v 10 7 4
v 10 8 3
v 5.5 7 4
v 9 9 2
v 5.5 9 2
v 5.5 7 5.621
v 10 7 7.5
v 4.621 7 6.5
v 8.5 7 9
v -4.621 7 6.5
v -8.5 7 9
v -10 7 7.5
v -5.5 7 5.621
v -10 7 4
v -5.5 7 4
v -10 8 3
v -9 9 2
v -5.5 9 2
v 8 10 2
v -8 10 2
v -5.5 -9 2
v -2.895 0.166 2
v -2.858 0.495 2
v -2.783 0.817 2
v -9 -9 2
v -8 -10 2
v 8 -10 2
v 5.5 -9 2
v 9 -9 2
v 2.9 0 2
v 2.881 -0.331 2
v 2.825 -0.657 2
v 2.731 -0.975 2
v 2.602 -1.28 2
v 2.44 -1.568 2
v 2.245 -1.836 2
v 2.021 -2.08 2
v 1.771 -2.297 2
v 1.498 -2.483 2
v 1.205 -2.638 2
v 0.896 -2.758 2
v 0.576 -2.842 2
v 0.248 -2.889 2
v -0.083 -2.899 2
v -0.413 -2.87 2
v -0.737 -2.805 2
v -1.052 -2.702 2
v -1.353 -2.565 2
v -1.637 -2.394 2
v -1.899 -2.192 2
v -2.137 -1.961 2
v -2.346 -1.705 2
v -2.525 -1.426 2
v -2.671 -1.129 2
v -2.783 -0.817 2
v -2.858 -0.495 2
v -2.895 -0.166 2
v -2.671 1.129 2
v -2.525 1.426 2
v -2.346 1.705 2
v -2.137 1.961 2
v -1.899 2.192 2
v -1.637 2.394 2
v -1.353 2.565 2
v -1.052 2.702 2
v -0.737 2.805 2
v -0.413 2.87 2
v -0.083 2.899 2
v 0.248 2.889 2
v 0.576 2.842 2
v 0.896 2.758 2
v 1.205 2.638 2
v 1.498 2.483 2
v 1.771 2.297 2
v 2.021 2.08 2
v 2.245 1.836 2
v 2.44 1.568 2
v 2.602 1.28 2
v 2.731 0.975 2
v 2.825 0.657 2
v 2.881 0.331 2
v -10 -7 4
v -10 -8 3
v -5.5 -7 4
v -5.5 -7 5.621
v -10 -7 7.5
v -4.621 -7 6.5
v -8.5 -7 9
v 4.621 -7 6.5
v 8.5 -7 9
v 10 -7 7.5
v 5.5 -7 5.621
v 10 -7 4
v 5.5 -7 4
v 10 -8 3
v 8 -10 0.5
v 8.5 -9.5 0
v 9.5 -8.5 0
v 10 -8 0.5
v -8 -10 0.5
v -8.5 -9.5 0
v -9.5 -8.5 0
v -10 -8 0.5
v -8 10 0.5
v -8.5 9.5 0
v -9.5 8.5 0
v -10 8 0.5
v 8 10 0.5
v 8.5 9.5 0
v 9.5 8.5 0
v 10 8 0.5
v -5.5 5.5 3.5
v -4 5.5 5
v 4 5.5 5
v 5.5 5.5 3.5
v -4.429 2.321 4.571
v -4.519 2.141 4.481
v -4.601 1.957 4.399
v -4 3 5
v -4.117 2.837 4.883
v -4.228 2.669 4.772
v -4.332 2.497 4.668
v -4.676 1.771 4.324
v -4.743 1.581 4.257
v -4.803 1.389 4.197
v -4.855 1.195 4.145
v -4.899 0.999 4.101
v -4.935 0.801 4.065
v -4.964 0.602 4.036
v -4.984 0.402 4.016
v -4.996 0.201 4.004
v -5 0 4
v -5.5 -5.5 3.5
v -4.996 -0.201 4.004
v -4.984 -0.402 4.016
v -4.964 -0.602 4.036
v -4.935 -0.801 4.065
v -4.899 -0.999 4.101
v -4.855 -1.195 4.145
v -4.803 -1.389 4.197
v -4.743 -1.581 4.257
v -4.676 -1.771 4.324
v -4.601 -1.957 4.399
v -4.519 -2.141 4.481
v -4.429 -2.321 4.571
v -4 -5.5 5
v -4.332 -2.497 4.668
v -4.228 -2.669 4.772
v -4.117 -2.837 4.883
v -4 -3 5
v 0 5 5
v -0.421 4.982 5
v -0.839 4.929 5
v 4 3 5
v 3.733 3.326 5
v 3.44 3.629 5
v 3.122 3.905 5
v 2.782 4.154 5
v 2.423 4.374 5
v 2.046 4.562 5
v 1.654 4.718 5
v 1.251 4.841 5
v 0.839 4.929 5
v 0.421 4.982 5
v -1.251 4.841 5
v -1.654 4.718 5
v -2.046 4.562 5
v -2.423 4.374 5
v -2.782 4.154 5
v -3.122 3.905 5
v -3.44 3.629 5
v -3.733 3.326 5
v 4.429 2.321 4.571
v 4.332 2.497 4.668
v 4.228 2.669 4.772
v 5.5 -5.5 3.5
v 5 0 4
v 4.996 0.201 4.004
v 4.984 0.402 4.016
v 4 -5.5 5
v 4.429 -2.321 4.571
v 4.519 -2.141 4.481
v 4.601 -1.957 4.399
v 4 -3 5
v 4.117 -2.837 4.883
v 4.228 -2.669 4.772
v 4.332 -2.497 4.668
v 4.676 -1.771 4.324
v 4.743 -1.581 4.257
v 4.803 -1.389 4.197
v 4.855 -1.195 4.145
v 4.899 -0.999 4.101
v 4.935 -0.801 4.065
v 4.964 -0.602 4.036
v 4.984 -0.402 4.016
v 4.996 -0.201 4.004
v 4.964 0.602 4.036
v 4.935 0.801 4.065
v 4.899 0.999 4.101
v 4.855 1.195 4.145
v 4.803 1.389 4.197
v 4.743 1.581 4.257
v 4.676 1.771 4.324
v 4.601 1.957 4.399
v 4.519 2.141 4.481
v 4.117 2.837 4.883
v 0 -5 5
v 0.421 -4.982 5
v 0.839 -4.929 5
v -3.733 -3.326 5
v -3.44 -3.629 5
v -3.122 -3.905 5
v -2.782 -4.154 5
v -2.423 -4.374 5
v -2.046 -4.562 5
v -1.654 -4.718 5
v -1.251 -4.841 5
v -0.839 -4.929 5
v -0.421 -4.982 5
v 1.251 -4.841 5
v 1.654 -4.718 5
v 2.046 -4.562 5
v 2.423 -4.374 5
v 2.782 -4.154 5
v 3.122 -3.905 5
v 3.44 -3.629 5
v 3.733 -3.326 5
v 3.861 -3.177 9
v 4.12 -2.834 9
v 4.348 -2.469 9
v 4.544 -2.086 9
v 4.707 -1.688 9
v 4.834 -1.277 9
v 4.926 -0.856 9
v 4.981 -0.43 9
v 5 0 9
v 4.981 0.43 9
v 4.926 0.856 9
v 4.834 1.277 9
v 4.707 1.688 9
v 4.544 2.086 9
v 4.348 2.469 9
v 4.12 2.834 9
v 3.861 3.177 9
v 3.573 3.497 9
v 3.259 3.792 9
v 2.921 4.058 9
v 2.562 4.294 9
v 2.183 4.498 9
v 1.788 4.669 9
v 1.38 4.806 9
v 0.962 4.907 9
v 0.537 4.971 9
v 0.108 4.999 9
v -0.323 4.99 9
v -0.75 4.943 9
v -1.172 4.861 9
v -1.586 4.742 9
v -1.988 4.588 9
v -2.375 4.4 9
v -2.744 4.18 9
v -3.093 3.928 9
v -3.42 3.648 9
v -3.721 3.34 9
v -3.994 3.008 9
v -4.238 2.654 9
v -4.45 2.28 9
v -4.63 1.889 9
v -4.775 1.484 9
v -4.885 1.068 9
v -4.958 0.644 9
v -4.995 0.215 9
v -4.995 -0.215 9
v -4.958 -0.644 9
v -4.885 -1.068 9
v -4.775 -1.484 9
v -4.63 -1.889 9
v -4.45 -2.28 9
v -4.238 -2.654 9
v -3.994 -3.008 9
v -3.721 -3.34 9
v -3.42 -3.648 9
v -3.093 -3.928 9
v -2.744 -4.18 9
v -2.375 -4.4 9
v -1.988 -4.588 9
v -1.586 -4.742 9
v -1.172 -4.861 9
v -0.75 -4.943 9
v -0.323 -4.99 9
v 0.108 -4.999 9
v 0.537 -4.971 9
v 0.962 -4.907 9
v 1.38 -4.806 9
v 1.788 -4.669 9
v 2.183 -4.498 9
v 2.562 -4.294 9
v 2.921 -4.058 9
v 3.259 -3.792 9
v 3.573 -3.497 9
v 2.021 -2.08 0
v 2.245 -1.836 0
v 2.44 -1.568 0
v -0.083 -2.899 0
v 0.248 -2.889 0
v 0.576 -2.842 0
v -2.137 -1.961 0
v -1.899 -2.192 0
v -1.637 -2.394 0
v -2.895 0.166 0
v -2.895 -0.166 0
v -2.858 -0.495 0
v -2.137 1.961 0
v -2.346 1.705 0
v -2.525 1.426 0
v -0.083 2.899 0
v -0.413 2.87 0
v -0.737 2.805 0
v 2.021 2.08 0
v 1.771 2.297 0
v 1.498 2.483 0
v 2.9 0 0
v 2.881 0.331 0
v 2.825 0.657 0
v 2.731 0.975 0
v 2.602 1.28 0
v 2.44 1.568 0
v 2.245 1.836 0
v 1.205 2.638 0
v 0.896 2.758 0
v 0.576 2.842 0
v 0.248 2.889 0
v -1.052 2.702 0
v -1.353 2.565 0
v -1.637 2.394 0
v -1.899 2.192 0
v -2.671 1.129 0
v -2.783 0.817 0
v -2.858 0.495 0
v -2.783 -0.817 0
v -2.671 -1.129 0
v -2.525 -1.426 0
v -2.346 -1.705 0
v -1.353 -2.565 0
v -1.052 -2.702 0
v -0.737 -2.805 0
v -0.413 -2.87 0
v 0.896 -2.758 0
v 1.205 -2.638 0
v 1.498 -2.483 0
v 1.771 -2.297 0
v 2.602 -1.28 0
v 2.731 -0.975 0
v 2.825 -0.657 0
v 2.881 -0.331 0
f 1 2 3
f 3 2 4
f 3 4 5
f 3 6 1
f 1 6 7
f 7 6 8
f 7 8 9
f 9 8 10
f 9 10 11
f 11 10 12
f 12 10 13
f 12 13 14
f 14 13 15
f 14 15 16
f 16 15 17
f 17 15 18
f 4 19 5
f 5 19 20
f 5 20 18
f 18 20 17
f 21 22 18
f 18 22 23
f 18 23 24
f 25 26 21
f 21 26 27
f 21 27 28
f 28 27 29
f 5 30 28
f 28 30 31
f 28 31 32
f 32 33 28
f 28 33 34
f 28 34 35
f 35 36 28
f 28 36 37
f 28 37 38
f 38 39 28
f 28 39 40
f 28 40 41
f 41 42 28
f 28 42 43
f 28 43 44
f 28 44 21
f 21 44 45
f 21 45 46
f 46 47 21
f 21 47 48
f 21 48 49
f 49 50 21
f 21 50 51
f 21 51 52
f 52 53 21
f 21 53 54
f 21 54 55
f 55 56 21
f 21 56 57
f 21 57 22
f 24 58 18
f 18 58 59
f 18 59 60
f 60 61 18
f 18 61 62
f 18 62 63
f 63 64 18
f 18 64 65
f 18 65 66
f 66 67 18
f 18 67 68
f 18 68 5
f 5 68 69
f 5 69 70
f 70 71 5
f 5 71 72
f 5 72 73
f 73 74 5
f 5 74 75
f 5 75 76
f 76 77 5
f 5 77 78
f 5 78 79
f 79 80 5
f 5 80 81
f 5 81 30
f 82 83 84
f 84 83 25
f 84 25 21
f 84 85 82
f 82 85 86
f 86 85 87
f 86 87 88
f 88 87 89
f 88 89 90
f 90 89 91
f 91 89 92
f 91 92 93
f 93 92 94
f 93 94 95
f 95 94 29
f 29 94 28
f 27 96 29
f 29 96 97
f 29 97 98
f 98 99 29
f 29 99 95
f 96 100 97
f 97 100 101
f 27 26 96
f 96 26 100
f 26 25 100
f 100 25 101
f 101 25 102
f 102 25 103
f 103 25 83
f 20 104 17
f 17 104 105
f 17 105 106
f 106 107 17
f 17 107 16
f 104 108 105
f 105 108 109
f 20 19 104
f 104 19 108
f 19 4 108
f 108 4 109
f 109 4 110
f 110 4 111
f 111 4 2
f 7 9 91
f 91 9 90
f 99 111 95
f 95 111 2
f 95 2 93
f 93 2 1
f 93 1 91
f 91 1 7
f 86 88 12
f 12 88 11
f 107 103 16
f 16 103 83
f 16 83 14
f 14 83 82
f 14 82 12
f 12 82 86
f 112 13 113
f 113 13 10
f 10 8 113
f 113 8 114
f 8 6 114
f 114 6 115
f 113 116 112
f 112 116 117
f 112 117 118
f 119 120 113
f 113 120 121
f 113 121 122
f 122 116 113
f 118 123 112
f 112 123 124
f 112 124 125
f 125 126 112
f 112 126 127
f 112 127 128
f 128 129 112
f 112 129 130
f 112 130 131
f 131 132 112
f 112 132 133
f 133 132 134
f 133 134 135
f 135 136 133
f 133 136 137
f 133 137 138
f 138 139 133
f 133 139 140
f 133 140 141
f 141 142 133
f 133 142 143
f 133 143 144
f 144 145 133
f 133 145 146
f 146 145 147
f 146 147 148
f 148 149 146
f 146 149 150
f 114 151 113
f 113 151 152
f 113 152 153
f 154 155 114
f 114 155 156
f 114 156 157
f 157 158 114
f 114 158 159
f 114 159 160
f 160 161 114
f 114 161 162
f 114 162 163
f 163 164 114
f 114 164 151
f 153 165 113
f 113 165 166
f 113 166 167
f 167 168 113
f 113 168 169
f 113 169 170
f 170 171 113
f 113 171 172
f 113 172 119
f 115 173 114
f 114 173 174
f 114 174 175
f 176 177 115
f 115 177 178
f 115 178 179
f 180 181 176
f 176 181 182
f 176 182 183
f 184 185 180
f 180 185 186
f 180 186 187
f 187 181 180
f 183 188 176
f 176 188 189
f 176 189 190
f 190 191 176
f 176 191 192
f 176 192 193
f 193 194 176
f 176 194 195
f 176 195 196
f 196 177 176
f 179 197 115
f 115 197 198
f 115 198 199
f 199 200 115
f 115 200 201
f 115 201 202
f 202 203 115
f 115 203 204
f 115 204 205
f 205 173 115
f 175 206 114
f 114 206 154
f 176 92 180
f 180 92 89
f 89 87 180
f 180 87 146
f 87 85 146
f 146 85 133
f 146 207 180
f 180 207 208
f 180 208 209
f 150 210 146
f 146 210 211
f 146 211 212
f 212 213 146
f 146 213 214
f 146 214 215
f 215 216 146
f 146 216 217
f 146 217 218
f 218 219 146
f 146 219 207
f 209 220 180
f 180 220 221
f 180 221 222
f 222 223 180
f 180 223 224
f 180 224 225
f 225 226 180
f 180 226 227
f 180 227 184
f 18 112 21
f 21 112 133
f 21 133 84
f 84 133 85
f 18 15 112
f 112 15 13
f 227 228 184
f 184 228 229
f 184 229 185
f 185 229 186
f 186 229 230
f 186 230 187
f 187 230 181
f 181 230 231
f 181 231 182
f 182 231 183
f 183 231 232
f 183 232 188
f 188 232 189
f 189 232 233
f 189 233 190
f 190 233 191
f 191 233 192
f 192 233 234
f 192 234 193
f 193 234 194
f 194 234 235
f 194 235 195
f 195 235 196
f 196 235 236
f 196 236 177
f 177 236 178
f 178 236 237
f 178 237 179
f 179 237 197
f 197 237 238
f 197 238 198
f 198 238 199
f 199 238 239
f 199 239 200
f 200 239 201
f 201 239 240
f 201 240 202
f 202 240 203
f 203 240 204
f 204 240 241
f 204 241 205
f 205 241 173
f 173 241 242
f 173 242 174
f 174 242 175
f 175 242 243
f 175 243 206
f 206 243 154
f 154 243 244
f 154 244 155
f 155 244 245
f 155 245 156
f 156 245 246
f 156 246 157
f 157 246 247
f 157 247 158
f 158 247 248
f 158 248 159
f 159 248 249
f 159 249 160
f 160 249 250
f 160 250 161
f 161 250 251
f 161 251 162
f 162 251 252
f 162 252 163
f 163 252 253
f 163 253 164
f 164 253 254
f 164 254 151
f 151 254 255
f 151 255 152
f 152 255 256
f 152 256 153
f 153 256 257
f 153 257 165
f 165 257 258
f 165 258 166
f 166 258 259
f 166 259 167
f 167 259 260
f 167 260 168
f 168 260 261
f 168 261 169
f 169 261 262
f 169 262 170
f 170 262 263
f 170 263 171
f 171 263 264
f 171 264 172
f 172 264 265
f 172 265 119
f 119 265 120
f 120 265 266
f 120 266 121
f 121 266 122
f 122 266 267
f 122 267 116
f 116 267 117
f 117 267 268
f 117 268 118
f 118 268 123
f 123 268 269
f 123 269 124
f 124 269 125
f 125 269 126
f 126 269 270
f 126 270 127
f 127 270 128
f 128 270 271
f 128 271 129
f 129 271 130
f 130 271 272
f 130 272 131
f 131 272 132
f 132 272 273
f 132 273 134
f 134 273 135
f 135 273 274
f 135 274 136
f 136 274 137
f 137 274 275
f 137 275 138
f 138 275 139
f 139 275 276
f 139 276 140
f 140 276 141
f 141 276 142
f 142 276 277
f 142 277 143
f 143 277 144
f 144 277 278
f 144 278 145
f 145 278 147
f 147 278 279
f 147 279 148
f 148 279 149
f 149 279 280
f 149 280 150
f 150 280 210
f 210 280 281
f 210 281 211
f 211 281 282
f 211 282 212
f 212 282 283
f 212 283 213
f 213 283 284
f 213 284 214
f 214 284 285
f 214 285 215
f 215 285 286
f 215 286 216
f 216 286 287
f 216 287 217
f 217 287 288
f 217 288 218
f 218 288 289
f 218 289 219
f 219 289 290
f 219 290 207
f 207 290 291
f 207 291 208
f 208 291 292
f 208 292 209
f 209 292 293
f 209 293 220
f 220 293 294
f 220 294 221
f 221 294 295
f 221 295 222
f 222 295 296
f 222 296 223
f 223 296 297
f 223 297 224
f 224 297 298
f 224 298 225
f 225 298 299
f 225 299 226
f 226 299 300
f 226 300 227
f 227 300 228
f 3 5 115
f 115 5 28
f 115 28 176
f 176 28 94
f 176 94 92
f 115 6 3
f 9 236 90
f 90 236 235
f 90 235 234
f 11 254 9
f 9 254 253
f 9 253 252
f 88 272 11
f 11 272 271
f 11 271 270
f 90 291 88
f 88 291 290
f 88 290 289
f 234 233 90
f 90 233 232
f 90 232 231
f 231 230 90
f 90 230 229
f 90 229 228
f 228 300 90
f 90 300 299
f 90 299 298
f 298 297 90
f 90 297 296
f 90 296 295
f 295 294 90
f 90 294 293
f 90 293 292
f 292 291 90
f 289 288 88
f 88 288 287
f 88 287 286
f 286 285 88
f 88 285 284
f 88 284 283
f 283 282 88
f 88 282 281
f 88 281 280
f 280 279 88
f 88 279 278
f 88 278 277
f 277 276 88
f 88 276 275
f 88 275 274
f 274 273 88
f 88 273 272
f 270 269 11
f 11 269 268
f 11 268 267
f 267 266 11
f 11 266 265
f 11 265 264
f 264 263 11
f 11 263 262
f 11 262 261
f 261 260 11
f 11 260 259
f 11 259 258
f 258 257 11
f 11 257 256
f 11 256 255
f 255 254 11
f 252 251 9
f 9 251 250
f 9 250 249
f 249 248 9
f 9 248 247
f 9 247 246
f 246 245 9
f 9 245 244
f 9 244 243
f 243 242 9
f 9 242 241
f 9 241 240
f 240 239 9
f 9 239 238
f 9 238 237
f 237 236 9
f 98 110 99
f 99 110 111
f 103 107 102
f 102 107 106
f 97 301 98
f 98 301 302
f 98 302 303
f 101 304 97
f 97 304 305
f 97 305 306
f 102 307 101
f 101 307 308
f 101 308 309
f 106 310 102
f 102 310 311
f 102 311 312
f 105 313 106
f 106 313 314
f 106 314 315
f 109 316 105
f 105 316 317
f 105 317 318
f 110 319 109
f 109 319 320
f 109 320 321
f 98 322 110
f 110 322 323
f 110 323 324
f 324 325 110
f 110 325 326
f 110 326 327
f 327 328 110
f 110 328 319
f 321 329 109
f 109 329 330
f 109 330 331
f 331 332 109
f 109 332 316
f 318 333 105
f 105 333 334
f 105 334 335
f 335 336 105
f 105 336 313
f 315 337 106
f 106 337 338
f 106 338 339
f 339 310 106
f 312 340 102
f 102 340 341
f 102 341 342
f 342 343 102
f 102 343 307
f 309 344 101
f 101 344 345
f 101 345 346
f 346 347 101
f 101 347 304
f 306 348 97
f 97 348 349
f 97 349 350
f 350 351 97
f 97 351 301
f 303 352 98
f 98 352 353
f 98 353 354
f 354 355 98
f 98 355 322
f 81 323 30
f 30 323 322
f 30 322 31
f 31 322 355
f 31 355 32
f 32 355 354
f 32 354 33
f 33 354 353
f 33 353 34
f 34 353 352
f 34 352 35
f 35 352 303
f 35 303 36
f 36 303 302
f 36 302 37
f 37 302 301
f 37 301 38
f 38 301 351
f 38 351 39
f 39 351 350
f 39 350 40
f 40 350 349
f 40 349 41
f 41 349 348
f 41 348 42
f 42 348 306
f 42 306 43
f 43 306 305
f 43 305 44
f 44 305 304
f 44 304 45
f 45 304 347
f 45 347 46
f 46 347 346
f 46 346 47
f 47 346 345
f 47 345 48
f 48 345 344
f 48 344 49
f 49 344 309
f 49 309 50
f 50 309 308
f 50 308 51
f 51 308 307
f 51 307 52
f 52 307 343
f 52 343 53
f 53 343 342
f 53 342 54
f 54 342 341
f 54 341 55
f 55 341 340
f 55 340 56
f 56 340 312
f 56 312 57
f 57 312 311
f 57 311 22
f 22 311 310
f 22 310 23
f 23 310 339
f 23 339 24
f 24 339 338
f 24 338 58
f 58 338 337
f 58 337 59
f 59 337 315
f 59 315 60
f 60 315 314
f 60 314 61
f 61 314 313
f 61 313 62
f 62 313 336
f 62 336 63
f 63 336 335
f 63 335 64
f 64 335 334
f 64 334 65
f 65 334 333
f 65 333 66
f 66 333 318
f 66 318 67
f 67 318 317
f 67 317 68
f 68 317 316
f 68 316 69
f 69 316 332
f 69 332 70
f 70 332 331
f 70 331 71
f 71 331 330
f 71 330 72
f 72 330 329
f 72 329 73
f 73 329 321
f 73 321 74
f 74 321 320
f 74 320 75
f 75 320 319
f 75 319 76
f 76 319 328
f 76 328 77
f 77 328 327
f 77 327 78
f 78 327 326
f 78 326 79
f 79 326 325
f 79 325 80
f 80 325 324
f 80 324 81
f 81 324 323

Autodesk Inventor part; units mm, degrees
ref_plane "YZ Plane" through (0, 0, 0) normal (1, 0, 0) x (0, 1, 0)
ref_plane "XZ Plane" through (0, 0, 0) normal (0, 1, 0) x (-1, 0, 0)
ref_plane "XY Plane" through (0, 0, 0) normal (0, 0, 1) x (1, 0, 0)
sketch "Sketch1" plane through (0, 0, 0) normal (0, 0, 1) x (1, 0, 0)
  line L0 (-10, -10) -> (10, -10)
  line L1 (10, -10) -> (10, 10)
  line L2 (10, 10) -> (-10, 10)
  line L3 (-10, 10) -> (-10, -10)
  line L4 (-10, -10) -> (10, 10) construction
  line L5 (10, -10) -> (-10, 10) construction
  circle A0 centre (0, 0) radius 2.9
  dimension "d0" = 20
  dimension "d1" = 20
  dimension "d2" = 5.8
extrude "Extrusion1" add sketch "Sketch1" along normal blind 2
chamfer "Chamfer1" distance 0.5 angle 45 4 edges at (10, 0, 0) (0, 10, 0) (-10, 0, 0) (0, -10, 0)
sketch "Sketch2" plane through (0, 0, 2) normal (0, 0, 1) x (1, 0, 0)
  line L0 (10, 10) -> (10, -10) projected
  line L1 (-10, -7) -> (10, -7)
  line L2 (10, -7) -> (10, 7)
  line L3 (10, 7) -> (-10, 7)
  line L4 (-10, 7) -> (-10, -7)
  line L5 (-10, -7) -> (10, 7) construction
  line L6 (10, -7) -> (-10, 7) construction
  point P0 (0, 0)
  dimension "d8" = 14
extrude "Extrusion2" add sketch "Sketch2" along normal blind 7
sketch "Sketch5" plane through (-10, -7, 2) normal (0, -1, 0) x (1, 0, 0)
  line L0 (20, 0) -> (0, 0) projected
  line L1 (4.5, 0) -> (15.5, 0)
  line L2 (15.5, 0) -> (15.5, 3)
  line L3 (15.5, 3) -> (4.5, 3)
  line L4 (4.5, 3) -> (4.5, 0)
  line L5 (0, 0) -> (0, 7) projected
  line L6 (20, 0) -> (20, 7) projected
  point P0 (10, -2)
  dimension "d18" = 3
  dimension "d19" = 4.5
  dimension "d20" = 4.5
extrude "Extrusion4" cut sketch "Sketch5" against normal through all
sketch "Sketch6" plane through (0, 0, 9) normal (0, 0, 1) x (1, 0, 0)
  circle A0 centre (0, 0) radius 2.9 construction
  circle A1 centre (0, 0) radius 5
  dimension "d23" = 10
extrude "Extrusion5" cut sketch "Sketch6" against normal up to surface (7 mm away)
chamfer "Chamfer4" distance 1.5 angle 45 2 edges at (-5.5, 0, 5) (5.5, 0, 5)
chamfer "Chamfer5" distance 1.5 angle 45 6 edges at (0, -7, 5) (0, 7, 5) (-4.75, -7, 4.25) (4.75, -7, 4.25) (4.75, 7, 4.25) (-4.75, 7, 4.25)
chamfer "Chamfer6" distance 1.5 angle 45 2 edges at (-10, 0, 9) (10, 0, 9)
chamfer "Chamfer7" distance 2 angle 45 8 edges at (10, 10, 1.25) (-10, 10, 1.25) (-10, -10, 1.25) (10, -10, 1.25) (7.75, -7, 2) (-7.75, -7, 2) (-7.75, 7, 2) (7.75, 7, 2)
equation "\"d20\" = d19"
properties part number "_3DPrint"
